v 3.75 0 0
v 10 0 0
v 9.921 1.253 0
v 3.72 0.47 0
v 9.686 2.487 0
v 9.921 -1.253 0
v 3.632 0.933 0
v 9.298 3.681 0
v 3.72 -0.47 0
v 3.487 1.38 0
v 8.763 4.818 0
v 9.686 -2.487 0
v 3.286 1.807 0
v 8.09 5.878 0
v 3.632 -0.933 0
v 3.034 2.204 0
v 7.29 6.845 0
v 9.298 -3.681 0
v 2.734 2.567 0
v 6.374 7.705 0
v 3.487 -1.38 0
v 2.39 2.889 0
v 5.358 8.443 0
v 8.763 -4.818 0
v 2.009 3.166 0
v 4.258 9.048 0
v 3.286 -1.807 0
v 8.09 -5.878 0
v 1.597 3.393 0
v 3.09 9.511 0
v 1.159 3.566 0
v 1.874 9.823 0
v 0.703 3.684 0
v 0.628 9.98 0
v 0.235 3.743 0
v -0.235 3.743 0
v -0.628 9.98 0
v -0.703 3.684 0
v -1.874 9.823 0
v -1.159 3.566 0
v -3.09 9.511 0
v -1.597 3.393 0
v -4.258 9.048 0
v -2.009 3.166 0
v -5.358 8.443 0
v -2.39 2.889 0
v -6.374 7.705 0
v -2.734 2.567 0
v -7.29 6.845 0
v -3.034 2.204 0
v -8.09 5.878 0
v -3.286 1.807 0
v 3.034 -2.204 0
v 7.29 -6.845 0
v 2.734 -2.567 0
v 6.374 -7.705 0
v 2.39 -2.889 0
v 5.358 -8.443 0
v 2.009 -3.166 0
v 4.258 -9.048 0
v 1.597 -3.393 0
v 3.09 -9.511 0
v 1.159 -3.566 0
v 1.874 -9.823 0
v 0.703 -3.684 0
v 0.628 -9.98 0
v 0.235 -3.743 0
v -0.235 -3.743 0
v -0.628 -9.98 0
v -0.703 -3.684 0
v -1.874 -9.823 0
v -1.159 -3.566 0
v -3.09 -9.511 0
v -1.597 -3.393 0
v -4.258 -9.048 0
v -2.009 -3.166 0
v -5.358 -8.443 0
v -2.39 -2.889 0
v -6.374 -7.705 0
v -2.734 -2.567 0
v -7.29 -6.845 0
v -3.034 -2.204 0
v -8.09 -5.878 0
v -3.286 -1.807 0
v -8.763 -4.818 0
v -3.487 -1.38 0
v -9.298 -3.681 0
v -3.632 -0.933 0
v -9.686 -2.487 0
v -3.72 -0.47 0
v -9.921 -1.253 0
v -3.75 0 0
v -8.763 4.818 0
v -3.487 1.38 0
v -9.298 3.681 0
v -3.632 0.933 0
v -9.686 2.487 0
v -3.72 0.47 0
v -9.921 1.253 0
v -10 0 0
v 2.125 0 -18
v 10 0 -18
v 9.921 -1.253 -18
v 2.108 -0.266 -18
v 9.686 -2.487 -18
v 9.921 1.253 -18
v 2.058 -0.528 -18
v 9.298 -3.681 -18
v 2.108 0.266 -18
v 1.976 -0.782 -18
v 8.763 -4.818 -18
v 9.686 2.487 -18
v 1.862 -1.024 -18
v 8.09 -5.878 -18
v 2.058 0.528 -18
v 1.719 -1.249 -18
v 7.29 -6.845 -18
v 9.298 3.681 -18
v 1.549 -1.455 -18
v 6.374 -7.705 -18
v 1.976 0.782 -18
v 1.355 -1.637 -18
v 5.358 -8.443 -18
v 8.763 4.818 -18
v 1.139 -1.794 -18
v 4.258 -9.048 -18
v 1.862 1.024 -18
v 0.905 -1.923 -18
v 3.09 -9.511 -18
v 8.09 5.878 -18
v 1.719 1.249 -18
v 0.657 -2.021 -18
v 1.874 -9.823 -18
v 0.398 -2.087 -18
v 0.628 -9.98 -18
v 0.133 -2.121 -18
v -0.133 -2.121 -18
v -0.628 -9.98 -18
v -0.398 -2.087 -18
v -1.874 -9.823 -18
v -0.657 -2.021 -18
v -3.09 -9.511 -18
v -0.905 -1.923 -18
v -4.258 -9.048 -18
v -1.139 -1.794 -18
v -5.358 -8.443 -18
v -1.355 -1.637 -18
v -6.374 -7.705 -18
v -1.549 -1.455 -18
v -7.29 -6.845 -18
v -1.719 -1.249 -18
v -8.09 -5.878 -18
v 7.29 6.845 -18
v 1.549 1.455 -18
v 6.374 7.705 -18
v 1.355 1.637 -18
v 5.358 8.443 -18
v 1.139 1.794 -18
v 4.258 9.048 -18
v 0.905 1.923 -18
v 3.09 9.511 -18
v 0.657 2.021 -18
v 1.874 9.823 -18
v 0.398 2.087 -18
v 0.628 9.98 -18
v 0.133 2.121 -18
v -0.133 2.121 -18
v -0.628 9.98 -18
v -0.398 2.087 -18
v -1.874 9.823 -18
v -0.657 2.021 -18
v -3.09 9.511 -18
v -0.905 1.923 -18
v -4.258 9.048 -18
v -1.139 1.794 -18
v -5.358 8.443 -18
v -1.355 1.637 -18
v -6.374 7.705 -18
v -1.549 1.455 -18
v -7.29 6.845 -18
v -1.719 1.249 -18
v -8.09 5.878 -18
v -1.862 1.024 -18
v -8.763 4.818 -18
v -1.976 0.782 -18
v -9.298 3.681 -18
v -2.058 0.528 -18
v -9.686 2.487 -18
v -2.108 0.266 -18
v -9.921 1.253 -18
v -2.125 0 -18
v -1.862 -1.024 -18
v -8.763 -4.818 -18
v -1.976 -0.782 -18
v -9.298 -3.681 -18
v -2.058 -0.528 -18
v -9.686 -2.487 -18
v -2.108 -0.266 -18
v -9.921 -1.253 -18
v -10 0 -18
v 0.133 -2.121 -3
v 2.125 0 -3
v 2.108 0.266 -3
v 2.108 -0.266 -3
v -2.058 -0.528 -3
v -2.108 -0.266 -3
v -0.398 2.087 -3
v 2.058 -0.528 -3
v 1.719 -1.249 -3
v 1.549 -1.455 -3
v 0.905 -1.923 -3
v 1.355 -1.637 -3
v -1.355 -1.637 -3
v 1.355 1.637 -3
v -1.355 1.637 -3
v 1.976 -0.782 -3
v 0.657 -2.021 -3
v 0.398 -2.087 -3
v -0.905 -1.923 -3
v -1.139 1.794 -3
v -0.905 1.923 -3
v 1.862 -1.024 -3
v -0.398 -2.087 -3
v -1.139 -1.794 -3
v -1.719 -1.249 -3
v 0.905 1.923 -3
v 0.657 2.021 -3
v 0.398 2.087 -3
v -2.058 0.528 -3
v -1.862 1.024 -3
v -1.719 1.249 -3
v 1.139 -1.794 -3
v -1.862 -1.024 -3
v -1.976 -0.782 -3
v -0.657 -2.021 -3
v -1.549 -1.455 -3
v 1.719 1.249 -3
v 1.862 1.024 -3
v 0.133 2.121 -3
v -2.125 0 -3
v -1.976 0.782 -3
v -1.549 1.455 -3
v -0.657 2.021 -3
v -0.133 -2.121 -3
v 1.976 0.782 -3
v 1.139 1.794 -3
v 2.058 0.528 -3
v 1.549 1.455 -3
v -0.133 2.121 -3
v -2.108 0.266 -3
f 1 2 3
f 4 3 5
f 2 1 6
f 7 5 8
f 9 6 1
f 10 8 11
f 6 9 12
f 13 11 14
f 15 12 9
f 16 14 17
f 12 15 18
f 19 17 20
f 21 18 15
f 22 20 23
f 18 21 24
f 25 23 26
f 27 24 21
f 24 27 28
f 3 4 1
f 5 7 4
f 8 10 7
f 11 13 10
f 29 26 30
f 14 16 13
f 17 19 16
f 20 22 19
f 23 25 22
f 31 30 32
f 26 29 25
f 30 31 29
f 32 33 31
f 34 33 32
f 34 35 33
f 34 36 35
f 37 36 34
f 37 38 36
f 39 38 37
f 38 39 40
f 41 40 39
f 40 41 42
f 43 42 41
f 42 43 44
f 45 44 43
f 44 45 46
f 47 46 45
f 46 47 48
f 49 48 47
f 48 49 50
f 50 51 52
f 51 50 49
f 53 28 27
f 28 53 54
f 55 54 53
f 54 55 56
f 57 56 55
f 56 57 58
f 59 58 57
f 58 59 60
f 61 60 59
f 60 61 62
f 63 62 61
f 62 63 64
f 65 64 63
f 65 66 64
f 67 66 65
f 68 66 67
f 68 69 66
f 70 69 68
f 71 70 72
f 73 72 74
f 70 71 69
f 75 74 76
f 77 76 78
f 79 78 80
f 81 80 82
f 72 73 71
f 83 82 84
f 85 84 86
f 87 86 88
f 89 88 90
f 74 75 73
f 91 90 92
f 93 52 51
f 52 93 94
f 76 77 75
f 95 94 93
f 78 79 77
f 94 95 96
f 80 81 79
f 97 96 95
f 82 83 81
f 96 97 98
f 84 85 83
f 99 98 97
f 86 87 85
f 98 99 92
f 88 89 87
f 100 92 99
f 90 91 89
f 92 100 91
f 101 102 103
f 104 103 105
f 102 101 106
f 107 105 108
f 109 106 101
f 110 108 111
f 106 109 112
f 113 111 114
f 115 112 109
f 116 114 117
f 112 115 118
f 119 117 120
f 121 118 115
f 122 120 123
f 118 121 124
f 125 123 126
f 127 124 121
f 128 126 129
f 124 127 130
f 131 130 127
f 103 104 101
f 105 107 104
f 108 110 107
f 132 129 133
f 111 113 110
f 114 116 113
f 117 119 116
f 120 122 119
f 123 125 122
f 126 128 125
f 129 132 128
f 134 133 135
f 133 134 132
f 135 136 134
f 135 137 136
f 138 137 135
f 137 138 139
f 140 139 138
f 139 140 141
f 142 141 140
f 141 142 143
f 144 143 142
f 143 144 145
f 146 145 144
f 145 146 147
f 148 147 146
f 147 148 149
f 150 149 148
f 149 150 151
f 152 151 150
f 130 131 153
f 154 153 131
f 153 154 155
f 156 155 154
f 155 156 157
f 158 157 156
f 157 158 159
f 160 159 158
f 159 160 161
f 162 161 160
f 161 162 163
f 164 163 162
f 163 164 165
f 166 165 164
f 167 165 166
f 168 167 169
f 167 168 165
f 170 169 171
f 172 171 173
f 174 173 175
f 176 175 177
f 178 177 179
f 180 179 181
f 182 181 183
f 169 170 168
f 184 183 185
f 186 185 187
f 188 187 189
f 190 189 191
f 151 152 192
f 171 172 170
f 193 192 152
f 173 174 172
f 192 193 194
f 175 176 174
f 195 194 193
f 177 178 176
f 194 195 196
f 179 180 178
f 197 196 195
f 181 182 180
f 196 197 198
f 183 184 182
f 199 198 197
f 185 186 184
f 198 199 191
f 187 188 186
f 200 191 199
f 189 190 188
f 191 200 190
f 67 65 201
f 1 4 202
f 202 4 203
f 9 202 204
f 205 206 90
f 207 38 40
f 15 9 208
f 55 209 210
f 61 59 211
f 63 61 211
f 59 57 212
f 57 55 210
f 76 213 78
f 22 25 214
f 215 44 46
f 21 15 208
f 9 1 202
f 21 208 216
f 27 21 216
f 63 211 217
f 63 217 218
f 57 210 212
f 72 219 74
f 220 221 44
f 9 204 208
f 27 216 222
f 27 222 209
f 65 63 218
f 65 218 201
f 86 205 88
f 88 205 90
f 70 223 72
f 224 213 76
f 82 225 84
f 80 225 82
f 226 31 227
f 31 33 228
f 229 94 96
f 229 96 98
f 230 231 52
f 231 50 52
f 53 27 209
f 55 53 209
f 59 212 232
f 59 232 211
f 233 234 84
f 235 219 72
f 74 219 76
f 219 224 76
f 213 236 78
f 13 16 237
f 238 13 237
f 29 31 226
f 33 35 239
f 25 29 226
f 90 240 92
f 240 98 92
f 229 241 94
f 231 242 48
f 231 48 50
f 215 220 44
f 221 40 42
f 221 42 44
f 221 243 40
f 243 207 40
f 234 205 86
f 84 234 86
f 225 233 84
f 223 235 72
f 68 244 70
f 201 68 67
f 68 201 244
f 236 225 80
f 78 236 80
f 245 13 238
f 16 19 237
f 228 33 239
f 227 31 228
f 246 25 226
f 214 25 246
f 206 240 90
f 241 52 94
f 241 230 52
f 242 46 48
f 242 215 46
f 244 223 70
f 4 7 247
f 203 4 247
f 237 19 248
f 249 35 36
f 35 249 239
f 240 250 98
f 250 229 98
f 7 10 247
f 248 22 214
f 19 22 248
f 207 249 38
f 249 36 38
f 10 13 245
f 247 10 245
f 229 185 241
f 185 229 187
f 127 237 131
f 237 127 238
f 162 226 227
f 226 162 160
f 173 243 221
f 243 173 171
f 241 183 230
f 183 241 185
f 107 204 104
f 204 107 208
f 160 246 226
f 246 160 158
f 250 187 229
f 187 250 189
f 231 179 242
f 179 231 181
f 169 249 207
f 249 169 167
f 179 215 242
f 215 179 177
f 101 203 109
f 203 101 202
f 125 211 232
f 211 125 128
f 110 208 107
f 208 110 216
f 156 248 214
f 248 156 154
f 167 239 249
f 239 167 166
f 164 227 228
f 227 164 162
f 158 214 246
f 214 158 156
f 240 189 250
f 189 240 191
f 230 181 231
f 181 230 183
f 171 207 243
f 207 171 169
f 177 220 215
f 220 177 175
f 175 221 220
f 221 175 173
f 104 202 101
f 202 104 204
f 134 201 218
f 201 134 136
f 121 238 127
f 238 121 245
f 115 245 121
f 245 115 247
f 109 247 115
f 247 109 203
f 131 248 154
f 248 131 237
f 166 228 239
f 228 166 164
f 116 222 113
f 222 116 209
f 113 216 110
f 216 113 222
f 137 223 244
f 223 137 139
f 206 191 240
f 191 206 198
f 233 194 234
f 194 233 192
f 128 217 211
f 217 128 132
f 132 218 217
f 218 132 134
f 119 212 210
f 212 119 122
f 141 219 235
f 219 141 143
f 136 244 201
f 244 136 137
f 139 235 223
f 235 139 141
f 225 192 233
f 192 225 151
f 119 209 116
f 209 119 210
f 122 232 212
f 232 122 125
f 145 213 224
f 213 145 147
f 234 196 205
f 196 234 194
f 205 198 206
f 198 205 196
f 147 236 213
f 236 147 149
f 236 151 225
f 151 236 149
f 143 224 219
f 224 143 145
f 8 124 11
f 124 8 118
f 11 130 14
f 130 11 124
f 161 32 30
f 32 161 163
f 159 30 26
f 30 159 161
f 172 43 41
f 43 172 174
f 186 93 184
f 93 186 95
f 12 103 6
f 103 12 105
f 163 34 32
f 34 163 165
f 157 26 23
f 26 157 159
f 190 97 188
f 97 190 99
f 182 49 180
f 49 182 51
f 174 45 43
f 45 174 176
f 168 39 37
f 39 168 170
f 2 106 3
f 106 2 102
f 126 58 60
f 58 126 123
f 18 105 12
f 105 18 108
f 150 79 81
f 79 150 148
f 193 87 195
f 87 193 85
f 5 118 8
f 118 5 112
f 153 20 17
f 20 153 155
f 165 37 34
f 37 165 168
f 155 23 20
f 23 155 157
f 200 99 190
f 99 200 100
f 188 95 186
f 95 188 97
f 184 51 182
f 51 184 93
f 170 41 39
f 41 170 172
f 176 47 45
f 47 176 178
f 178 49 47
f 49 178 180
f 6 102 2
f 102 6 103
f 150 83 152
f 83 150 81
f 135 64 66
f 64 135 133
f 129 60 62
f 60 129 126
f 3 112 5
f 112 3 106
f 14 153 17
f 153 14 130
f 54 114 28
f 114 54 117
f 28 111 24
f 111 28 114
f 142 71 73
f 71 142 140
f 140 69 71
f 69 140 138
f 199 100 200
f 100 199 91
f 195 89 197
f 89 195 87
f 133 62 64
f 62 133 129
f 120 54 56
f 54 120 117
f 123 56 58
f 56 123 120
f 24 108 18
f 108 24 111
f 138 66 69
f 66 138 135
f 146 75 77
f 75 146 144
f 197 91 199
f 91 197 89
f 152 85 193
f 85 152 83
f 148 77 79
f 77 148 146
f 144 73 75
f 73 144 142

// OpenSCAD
$fn = 50;


difference() {
	union() {
		translate(v = [0, 0, -18.0000000000]) {
			cylinder(h = 18, r = 10.0000000000);
		}
		cylinder(h = 0, r = 13.0000000000);
	}
	union() {
		translate(v = [0, 0, 0]) {
			rotate(a = [0, 0, 0]) {
				difference() {
					union() {
						#translate(v = [0, 0, -18.0000000000]) {
							cylinder(h = 18, r = 2.0000000000);
						}
						#translate(v = [0, 0, -3]) {
							cylinder(h = 3, r1 = 2.1250000000, r2 = 3.7500000000);
						}
						#translate(v = [0, 0, -18.0000000000]) {
							cylinder(h = 18, r = 2.1250000000);
						}
						#translate(v = [0, 0, -18.0000000000]) {
							cylinder(h = 18, r = 2.0000000000);
						}
					}
					union();
				}
			}
		}
	}
}
